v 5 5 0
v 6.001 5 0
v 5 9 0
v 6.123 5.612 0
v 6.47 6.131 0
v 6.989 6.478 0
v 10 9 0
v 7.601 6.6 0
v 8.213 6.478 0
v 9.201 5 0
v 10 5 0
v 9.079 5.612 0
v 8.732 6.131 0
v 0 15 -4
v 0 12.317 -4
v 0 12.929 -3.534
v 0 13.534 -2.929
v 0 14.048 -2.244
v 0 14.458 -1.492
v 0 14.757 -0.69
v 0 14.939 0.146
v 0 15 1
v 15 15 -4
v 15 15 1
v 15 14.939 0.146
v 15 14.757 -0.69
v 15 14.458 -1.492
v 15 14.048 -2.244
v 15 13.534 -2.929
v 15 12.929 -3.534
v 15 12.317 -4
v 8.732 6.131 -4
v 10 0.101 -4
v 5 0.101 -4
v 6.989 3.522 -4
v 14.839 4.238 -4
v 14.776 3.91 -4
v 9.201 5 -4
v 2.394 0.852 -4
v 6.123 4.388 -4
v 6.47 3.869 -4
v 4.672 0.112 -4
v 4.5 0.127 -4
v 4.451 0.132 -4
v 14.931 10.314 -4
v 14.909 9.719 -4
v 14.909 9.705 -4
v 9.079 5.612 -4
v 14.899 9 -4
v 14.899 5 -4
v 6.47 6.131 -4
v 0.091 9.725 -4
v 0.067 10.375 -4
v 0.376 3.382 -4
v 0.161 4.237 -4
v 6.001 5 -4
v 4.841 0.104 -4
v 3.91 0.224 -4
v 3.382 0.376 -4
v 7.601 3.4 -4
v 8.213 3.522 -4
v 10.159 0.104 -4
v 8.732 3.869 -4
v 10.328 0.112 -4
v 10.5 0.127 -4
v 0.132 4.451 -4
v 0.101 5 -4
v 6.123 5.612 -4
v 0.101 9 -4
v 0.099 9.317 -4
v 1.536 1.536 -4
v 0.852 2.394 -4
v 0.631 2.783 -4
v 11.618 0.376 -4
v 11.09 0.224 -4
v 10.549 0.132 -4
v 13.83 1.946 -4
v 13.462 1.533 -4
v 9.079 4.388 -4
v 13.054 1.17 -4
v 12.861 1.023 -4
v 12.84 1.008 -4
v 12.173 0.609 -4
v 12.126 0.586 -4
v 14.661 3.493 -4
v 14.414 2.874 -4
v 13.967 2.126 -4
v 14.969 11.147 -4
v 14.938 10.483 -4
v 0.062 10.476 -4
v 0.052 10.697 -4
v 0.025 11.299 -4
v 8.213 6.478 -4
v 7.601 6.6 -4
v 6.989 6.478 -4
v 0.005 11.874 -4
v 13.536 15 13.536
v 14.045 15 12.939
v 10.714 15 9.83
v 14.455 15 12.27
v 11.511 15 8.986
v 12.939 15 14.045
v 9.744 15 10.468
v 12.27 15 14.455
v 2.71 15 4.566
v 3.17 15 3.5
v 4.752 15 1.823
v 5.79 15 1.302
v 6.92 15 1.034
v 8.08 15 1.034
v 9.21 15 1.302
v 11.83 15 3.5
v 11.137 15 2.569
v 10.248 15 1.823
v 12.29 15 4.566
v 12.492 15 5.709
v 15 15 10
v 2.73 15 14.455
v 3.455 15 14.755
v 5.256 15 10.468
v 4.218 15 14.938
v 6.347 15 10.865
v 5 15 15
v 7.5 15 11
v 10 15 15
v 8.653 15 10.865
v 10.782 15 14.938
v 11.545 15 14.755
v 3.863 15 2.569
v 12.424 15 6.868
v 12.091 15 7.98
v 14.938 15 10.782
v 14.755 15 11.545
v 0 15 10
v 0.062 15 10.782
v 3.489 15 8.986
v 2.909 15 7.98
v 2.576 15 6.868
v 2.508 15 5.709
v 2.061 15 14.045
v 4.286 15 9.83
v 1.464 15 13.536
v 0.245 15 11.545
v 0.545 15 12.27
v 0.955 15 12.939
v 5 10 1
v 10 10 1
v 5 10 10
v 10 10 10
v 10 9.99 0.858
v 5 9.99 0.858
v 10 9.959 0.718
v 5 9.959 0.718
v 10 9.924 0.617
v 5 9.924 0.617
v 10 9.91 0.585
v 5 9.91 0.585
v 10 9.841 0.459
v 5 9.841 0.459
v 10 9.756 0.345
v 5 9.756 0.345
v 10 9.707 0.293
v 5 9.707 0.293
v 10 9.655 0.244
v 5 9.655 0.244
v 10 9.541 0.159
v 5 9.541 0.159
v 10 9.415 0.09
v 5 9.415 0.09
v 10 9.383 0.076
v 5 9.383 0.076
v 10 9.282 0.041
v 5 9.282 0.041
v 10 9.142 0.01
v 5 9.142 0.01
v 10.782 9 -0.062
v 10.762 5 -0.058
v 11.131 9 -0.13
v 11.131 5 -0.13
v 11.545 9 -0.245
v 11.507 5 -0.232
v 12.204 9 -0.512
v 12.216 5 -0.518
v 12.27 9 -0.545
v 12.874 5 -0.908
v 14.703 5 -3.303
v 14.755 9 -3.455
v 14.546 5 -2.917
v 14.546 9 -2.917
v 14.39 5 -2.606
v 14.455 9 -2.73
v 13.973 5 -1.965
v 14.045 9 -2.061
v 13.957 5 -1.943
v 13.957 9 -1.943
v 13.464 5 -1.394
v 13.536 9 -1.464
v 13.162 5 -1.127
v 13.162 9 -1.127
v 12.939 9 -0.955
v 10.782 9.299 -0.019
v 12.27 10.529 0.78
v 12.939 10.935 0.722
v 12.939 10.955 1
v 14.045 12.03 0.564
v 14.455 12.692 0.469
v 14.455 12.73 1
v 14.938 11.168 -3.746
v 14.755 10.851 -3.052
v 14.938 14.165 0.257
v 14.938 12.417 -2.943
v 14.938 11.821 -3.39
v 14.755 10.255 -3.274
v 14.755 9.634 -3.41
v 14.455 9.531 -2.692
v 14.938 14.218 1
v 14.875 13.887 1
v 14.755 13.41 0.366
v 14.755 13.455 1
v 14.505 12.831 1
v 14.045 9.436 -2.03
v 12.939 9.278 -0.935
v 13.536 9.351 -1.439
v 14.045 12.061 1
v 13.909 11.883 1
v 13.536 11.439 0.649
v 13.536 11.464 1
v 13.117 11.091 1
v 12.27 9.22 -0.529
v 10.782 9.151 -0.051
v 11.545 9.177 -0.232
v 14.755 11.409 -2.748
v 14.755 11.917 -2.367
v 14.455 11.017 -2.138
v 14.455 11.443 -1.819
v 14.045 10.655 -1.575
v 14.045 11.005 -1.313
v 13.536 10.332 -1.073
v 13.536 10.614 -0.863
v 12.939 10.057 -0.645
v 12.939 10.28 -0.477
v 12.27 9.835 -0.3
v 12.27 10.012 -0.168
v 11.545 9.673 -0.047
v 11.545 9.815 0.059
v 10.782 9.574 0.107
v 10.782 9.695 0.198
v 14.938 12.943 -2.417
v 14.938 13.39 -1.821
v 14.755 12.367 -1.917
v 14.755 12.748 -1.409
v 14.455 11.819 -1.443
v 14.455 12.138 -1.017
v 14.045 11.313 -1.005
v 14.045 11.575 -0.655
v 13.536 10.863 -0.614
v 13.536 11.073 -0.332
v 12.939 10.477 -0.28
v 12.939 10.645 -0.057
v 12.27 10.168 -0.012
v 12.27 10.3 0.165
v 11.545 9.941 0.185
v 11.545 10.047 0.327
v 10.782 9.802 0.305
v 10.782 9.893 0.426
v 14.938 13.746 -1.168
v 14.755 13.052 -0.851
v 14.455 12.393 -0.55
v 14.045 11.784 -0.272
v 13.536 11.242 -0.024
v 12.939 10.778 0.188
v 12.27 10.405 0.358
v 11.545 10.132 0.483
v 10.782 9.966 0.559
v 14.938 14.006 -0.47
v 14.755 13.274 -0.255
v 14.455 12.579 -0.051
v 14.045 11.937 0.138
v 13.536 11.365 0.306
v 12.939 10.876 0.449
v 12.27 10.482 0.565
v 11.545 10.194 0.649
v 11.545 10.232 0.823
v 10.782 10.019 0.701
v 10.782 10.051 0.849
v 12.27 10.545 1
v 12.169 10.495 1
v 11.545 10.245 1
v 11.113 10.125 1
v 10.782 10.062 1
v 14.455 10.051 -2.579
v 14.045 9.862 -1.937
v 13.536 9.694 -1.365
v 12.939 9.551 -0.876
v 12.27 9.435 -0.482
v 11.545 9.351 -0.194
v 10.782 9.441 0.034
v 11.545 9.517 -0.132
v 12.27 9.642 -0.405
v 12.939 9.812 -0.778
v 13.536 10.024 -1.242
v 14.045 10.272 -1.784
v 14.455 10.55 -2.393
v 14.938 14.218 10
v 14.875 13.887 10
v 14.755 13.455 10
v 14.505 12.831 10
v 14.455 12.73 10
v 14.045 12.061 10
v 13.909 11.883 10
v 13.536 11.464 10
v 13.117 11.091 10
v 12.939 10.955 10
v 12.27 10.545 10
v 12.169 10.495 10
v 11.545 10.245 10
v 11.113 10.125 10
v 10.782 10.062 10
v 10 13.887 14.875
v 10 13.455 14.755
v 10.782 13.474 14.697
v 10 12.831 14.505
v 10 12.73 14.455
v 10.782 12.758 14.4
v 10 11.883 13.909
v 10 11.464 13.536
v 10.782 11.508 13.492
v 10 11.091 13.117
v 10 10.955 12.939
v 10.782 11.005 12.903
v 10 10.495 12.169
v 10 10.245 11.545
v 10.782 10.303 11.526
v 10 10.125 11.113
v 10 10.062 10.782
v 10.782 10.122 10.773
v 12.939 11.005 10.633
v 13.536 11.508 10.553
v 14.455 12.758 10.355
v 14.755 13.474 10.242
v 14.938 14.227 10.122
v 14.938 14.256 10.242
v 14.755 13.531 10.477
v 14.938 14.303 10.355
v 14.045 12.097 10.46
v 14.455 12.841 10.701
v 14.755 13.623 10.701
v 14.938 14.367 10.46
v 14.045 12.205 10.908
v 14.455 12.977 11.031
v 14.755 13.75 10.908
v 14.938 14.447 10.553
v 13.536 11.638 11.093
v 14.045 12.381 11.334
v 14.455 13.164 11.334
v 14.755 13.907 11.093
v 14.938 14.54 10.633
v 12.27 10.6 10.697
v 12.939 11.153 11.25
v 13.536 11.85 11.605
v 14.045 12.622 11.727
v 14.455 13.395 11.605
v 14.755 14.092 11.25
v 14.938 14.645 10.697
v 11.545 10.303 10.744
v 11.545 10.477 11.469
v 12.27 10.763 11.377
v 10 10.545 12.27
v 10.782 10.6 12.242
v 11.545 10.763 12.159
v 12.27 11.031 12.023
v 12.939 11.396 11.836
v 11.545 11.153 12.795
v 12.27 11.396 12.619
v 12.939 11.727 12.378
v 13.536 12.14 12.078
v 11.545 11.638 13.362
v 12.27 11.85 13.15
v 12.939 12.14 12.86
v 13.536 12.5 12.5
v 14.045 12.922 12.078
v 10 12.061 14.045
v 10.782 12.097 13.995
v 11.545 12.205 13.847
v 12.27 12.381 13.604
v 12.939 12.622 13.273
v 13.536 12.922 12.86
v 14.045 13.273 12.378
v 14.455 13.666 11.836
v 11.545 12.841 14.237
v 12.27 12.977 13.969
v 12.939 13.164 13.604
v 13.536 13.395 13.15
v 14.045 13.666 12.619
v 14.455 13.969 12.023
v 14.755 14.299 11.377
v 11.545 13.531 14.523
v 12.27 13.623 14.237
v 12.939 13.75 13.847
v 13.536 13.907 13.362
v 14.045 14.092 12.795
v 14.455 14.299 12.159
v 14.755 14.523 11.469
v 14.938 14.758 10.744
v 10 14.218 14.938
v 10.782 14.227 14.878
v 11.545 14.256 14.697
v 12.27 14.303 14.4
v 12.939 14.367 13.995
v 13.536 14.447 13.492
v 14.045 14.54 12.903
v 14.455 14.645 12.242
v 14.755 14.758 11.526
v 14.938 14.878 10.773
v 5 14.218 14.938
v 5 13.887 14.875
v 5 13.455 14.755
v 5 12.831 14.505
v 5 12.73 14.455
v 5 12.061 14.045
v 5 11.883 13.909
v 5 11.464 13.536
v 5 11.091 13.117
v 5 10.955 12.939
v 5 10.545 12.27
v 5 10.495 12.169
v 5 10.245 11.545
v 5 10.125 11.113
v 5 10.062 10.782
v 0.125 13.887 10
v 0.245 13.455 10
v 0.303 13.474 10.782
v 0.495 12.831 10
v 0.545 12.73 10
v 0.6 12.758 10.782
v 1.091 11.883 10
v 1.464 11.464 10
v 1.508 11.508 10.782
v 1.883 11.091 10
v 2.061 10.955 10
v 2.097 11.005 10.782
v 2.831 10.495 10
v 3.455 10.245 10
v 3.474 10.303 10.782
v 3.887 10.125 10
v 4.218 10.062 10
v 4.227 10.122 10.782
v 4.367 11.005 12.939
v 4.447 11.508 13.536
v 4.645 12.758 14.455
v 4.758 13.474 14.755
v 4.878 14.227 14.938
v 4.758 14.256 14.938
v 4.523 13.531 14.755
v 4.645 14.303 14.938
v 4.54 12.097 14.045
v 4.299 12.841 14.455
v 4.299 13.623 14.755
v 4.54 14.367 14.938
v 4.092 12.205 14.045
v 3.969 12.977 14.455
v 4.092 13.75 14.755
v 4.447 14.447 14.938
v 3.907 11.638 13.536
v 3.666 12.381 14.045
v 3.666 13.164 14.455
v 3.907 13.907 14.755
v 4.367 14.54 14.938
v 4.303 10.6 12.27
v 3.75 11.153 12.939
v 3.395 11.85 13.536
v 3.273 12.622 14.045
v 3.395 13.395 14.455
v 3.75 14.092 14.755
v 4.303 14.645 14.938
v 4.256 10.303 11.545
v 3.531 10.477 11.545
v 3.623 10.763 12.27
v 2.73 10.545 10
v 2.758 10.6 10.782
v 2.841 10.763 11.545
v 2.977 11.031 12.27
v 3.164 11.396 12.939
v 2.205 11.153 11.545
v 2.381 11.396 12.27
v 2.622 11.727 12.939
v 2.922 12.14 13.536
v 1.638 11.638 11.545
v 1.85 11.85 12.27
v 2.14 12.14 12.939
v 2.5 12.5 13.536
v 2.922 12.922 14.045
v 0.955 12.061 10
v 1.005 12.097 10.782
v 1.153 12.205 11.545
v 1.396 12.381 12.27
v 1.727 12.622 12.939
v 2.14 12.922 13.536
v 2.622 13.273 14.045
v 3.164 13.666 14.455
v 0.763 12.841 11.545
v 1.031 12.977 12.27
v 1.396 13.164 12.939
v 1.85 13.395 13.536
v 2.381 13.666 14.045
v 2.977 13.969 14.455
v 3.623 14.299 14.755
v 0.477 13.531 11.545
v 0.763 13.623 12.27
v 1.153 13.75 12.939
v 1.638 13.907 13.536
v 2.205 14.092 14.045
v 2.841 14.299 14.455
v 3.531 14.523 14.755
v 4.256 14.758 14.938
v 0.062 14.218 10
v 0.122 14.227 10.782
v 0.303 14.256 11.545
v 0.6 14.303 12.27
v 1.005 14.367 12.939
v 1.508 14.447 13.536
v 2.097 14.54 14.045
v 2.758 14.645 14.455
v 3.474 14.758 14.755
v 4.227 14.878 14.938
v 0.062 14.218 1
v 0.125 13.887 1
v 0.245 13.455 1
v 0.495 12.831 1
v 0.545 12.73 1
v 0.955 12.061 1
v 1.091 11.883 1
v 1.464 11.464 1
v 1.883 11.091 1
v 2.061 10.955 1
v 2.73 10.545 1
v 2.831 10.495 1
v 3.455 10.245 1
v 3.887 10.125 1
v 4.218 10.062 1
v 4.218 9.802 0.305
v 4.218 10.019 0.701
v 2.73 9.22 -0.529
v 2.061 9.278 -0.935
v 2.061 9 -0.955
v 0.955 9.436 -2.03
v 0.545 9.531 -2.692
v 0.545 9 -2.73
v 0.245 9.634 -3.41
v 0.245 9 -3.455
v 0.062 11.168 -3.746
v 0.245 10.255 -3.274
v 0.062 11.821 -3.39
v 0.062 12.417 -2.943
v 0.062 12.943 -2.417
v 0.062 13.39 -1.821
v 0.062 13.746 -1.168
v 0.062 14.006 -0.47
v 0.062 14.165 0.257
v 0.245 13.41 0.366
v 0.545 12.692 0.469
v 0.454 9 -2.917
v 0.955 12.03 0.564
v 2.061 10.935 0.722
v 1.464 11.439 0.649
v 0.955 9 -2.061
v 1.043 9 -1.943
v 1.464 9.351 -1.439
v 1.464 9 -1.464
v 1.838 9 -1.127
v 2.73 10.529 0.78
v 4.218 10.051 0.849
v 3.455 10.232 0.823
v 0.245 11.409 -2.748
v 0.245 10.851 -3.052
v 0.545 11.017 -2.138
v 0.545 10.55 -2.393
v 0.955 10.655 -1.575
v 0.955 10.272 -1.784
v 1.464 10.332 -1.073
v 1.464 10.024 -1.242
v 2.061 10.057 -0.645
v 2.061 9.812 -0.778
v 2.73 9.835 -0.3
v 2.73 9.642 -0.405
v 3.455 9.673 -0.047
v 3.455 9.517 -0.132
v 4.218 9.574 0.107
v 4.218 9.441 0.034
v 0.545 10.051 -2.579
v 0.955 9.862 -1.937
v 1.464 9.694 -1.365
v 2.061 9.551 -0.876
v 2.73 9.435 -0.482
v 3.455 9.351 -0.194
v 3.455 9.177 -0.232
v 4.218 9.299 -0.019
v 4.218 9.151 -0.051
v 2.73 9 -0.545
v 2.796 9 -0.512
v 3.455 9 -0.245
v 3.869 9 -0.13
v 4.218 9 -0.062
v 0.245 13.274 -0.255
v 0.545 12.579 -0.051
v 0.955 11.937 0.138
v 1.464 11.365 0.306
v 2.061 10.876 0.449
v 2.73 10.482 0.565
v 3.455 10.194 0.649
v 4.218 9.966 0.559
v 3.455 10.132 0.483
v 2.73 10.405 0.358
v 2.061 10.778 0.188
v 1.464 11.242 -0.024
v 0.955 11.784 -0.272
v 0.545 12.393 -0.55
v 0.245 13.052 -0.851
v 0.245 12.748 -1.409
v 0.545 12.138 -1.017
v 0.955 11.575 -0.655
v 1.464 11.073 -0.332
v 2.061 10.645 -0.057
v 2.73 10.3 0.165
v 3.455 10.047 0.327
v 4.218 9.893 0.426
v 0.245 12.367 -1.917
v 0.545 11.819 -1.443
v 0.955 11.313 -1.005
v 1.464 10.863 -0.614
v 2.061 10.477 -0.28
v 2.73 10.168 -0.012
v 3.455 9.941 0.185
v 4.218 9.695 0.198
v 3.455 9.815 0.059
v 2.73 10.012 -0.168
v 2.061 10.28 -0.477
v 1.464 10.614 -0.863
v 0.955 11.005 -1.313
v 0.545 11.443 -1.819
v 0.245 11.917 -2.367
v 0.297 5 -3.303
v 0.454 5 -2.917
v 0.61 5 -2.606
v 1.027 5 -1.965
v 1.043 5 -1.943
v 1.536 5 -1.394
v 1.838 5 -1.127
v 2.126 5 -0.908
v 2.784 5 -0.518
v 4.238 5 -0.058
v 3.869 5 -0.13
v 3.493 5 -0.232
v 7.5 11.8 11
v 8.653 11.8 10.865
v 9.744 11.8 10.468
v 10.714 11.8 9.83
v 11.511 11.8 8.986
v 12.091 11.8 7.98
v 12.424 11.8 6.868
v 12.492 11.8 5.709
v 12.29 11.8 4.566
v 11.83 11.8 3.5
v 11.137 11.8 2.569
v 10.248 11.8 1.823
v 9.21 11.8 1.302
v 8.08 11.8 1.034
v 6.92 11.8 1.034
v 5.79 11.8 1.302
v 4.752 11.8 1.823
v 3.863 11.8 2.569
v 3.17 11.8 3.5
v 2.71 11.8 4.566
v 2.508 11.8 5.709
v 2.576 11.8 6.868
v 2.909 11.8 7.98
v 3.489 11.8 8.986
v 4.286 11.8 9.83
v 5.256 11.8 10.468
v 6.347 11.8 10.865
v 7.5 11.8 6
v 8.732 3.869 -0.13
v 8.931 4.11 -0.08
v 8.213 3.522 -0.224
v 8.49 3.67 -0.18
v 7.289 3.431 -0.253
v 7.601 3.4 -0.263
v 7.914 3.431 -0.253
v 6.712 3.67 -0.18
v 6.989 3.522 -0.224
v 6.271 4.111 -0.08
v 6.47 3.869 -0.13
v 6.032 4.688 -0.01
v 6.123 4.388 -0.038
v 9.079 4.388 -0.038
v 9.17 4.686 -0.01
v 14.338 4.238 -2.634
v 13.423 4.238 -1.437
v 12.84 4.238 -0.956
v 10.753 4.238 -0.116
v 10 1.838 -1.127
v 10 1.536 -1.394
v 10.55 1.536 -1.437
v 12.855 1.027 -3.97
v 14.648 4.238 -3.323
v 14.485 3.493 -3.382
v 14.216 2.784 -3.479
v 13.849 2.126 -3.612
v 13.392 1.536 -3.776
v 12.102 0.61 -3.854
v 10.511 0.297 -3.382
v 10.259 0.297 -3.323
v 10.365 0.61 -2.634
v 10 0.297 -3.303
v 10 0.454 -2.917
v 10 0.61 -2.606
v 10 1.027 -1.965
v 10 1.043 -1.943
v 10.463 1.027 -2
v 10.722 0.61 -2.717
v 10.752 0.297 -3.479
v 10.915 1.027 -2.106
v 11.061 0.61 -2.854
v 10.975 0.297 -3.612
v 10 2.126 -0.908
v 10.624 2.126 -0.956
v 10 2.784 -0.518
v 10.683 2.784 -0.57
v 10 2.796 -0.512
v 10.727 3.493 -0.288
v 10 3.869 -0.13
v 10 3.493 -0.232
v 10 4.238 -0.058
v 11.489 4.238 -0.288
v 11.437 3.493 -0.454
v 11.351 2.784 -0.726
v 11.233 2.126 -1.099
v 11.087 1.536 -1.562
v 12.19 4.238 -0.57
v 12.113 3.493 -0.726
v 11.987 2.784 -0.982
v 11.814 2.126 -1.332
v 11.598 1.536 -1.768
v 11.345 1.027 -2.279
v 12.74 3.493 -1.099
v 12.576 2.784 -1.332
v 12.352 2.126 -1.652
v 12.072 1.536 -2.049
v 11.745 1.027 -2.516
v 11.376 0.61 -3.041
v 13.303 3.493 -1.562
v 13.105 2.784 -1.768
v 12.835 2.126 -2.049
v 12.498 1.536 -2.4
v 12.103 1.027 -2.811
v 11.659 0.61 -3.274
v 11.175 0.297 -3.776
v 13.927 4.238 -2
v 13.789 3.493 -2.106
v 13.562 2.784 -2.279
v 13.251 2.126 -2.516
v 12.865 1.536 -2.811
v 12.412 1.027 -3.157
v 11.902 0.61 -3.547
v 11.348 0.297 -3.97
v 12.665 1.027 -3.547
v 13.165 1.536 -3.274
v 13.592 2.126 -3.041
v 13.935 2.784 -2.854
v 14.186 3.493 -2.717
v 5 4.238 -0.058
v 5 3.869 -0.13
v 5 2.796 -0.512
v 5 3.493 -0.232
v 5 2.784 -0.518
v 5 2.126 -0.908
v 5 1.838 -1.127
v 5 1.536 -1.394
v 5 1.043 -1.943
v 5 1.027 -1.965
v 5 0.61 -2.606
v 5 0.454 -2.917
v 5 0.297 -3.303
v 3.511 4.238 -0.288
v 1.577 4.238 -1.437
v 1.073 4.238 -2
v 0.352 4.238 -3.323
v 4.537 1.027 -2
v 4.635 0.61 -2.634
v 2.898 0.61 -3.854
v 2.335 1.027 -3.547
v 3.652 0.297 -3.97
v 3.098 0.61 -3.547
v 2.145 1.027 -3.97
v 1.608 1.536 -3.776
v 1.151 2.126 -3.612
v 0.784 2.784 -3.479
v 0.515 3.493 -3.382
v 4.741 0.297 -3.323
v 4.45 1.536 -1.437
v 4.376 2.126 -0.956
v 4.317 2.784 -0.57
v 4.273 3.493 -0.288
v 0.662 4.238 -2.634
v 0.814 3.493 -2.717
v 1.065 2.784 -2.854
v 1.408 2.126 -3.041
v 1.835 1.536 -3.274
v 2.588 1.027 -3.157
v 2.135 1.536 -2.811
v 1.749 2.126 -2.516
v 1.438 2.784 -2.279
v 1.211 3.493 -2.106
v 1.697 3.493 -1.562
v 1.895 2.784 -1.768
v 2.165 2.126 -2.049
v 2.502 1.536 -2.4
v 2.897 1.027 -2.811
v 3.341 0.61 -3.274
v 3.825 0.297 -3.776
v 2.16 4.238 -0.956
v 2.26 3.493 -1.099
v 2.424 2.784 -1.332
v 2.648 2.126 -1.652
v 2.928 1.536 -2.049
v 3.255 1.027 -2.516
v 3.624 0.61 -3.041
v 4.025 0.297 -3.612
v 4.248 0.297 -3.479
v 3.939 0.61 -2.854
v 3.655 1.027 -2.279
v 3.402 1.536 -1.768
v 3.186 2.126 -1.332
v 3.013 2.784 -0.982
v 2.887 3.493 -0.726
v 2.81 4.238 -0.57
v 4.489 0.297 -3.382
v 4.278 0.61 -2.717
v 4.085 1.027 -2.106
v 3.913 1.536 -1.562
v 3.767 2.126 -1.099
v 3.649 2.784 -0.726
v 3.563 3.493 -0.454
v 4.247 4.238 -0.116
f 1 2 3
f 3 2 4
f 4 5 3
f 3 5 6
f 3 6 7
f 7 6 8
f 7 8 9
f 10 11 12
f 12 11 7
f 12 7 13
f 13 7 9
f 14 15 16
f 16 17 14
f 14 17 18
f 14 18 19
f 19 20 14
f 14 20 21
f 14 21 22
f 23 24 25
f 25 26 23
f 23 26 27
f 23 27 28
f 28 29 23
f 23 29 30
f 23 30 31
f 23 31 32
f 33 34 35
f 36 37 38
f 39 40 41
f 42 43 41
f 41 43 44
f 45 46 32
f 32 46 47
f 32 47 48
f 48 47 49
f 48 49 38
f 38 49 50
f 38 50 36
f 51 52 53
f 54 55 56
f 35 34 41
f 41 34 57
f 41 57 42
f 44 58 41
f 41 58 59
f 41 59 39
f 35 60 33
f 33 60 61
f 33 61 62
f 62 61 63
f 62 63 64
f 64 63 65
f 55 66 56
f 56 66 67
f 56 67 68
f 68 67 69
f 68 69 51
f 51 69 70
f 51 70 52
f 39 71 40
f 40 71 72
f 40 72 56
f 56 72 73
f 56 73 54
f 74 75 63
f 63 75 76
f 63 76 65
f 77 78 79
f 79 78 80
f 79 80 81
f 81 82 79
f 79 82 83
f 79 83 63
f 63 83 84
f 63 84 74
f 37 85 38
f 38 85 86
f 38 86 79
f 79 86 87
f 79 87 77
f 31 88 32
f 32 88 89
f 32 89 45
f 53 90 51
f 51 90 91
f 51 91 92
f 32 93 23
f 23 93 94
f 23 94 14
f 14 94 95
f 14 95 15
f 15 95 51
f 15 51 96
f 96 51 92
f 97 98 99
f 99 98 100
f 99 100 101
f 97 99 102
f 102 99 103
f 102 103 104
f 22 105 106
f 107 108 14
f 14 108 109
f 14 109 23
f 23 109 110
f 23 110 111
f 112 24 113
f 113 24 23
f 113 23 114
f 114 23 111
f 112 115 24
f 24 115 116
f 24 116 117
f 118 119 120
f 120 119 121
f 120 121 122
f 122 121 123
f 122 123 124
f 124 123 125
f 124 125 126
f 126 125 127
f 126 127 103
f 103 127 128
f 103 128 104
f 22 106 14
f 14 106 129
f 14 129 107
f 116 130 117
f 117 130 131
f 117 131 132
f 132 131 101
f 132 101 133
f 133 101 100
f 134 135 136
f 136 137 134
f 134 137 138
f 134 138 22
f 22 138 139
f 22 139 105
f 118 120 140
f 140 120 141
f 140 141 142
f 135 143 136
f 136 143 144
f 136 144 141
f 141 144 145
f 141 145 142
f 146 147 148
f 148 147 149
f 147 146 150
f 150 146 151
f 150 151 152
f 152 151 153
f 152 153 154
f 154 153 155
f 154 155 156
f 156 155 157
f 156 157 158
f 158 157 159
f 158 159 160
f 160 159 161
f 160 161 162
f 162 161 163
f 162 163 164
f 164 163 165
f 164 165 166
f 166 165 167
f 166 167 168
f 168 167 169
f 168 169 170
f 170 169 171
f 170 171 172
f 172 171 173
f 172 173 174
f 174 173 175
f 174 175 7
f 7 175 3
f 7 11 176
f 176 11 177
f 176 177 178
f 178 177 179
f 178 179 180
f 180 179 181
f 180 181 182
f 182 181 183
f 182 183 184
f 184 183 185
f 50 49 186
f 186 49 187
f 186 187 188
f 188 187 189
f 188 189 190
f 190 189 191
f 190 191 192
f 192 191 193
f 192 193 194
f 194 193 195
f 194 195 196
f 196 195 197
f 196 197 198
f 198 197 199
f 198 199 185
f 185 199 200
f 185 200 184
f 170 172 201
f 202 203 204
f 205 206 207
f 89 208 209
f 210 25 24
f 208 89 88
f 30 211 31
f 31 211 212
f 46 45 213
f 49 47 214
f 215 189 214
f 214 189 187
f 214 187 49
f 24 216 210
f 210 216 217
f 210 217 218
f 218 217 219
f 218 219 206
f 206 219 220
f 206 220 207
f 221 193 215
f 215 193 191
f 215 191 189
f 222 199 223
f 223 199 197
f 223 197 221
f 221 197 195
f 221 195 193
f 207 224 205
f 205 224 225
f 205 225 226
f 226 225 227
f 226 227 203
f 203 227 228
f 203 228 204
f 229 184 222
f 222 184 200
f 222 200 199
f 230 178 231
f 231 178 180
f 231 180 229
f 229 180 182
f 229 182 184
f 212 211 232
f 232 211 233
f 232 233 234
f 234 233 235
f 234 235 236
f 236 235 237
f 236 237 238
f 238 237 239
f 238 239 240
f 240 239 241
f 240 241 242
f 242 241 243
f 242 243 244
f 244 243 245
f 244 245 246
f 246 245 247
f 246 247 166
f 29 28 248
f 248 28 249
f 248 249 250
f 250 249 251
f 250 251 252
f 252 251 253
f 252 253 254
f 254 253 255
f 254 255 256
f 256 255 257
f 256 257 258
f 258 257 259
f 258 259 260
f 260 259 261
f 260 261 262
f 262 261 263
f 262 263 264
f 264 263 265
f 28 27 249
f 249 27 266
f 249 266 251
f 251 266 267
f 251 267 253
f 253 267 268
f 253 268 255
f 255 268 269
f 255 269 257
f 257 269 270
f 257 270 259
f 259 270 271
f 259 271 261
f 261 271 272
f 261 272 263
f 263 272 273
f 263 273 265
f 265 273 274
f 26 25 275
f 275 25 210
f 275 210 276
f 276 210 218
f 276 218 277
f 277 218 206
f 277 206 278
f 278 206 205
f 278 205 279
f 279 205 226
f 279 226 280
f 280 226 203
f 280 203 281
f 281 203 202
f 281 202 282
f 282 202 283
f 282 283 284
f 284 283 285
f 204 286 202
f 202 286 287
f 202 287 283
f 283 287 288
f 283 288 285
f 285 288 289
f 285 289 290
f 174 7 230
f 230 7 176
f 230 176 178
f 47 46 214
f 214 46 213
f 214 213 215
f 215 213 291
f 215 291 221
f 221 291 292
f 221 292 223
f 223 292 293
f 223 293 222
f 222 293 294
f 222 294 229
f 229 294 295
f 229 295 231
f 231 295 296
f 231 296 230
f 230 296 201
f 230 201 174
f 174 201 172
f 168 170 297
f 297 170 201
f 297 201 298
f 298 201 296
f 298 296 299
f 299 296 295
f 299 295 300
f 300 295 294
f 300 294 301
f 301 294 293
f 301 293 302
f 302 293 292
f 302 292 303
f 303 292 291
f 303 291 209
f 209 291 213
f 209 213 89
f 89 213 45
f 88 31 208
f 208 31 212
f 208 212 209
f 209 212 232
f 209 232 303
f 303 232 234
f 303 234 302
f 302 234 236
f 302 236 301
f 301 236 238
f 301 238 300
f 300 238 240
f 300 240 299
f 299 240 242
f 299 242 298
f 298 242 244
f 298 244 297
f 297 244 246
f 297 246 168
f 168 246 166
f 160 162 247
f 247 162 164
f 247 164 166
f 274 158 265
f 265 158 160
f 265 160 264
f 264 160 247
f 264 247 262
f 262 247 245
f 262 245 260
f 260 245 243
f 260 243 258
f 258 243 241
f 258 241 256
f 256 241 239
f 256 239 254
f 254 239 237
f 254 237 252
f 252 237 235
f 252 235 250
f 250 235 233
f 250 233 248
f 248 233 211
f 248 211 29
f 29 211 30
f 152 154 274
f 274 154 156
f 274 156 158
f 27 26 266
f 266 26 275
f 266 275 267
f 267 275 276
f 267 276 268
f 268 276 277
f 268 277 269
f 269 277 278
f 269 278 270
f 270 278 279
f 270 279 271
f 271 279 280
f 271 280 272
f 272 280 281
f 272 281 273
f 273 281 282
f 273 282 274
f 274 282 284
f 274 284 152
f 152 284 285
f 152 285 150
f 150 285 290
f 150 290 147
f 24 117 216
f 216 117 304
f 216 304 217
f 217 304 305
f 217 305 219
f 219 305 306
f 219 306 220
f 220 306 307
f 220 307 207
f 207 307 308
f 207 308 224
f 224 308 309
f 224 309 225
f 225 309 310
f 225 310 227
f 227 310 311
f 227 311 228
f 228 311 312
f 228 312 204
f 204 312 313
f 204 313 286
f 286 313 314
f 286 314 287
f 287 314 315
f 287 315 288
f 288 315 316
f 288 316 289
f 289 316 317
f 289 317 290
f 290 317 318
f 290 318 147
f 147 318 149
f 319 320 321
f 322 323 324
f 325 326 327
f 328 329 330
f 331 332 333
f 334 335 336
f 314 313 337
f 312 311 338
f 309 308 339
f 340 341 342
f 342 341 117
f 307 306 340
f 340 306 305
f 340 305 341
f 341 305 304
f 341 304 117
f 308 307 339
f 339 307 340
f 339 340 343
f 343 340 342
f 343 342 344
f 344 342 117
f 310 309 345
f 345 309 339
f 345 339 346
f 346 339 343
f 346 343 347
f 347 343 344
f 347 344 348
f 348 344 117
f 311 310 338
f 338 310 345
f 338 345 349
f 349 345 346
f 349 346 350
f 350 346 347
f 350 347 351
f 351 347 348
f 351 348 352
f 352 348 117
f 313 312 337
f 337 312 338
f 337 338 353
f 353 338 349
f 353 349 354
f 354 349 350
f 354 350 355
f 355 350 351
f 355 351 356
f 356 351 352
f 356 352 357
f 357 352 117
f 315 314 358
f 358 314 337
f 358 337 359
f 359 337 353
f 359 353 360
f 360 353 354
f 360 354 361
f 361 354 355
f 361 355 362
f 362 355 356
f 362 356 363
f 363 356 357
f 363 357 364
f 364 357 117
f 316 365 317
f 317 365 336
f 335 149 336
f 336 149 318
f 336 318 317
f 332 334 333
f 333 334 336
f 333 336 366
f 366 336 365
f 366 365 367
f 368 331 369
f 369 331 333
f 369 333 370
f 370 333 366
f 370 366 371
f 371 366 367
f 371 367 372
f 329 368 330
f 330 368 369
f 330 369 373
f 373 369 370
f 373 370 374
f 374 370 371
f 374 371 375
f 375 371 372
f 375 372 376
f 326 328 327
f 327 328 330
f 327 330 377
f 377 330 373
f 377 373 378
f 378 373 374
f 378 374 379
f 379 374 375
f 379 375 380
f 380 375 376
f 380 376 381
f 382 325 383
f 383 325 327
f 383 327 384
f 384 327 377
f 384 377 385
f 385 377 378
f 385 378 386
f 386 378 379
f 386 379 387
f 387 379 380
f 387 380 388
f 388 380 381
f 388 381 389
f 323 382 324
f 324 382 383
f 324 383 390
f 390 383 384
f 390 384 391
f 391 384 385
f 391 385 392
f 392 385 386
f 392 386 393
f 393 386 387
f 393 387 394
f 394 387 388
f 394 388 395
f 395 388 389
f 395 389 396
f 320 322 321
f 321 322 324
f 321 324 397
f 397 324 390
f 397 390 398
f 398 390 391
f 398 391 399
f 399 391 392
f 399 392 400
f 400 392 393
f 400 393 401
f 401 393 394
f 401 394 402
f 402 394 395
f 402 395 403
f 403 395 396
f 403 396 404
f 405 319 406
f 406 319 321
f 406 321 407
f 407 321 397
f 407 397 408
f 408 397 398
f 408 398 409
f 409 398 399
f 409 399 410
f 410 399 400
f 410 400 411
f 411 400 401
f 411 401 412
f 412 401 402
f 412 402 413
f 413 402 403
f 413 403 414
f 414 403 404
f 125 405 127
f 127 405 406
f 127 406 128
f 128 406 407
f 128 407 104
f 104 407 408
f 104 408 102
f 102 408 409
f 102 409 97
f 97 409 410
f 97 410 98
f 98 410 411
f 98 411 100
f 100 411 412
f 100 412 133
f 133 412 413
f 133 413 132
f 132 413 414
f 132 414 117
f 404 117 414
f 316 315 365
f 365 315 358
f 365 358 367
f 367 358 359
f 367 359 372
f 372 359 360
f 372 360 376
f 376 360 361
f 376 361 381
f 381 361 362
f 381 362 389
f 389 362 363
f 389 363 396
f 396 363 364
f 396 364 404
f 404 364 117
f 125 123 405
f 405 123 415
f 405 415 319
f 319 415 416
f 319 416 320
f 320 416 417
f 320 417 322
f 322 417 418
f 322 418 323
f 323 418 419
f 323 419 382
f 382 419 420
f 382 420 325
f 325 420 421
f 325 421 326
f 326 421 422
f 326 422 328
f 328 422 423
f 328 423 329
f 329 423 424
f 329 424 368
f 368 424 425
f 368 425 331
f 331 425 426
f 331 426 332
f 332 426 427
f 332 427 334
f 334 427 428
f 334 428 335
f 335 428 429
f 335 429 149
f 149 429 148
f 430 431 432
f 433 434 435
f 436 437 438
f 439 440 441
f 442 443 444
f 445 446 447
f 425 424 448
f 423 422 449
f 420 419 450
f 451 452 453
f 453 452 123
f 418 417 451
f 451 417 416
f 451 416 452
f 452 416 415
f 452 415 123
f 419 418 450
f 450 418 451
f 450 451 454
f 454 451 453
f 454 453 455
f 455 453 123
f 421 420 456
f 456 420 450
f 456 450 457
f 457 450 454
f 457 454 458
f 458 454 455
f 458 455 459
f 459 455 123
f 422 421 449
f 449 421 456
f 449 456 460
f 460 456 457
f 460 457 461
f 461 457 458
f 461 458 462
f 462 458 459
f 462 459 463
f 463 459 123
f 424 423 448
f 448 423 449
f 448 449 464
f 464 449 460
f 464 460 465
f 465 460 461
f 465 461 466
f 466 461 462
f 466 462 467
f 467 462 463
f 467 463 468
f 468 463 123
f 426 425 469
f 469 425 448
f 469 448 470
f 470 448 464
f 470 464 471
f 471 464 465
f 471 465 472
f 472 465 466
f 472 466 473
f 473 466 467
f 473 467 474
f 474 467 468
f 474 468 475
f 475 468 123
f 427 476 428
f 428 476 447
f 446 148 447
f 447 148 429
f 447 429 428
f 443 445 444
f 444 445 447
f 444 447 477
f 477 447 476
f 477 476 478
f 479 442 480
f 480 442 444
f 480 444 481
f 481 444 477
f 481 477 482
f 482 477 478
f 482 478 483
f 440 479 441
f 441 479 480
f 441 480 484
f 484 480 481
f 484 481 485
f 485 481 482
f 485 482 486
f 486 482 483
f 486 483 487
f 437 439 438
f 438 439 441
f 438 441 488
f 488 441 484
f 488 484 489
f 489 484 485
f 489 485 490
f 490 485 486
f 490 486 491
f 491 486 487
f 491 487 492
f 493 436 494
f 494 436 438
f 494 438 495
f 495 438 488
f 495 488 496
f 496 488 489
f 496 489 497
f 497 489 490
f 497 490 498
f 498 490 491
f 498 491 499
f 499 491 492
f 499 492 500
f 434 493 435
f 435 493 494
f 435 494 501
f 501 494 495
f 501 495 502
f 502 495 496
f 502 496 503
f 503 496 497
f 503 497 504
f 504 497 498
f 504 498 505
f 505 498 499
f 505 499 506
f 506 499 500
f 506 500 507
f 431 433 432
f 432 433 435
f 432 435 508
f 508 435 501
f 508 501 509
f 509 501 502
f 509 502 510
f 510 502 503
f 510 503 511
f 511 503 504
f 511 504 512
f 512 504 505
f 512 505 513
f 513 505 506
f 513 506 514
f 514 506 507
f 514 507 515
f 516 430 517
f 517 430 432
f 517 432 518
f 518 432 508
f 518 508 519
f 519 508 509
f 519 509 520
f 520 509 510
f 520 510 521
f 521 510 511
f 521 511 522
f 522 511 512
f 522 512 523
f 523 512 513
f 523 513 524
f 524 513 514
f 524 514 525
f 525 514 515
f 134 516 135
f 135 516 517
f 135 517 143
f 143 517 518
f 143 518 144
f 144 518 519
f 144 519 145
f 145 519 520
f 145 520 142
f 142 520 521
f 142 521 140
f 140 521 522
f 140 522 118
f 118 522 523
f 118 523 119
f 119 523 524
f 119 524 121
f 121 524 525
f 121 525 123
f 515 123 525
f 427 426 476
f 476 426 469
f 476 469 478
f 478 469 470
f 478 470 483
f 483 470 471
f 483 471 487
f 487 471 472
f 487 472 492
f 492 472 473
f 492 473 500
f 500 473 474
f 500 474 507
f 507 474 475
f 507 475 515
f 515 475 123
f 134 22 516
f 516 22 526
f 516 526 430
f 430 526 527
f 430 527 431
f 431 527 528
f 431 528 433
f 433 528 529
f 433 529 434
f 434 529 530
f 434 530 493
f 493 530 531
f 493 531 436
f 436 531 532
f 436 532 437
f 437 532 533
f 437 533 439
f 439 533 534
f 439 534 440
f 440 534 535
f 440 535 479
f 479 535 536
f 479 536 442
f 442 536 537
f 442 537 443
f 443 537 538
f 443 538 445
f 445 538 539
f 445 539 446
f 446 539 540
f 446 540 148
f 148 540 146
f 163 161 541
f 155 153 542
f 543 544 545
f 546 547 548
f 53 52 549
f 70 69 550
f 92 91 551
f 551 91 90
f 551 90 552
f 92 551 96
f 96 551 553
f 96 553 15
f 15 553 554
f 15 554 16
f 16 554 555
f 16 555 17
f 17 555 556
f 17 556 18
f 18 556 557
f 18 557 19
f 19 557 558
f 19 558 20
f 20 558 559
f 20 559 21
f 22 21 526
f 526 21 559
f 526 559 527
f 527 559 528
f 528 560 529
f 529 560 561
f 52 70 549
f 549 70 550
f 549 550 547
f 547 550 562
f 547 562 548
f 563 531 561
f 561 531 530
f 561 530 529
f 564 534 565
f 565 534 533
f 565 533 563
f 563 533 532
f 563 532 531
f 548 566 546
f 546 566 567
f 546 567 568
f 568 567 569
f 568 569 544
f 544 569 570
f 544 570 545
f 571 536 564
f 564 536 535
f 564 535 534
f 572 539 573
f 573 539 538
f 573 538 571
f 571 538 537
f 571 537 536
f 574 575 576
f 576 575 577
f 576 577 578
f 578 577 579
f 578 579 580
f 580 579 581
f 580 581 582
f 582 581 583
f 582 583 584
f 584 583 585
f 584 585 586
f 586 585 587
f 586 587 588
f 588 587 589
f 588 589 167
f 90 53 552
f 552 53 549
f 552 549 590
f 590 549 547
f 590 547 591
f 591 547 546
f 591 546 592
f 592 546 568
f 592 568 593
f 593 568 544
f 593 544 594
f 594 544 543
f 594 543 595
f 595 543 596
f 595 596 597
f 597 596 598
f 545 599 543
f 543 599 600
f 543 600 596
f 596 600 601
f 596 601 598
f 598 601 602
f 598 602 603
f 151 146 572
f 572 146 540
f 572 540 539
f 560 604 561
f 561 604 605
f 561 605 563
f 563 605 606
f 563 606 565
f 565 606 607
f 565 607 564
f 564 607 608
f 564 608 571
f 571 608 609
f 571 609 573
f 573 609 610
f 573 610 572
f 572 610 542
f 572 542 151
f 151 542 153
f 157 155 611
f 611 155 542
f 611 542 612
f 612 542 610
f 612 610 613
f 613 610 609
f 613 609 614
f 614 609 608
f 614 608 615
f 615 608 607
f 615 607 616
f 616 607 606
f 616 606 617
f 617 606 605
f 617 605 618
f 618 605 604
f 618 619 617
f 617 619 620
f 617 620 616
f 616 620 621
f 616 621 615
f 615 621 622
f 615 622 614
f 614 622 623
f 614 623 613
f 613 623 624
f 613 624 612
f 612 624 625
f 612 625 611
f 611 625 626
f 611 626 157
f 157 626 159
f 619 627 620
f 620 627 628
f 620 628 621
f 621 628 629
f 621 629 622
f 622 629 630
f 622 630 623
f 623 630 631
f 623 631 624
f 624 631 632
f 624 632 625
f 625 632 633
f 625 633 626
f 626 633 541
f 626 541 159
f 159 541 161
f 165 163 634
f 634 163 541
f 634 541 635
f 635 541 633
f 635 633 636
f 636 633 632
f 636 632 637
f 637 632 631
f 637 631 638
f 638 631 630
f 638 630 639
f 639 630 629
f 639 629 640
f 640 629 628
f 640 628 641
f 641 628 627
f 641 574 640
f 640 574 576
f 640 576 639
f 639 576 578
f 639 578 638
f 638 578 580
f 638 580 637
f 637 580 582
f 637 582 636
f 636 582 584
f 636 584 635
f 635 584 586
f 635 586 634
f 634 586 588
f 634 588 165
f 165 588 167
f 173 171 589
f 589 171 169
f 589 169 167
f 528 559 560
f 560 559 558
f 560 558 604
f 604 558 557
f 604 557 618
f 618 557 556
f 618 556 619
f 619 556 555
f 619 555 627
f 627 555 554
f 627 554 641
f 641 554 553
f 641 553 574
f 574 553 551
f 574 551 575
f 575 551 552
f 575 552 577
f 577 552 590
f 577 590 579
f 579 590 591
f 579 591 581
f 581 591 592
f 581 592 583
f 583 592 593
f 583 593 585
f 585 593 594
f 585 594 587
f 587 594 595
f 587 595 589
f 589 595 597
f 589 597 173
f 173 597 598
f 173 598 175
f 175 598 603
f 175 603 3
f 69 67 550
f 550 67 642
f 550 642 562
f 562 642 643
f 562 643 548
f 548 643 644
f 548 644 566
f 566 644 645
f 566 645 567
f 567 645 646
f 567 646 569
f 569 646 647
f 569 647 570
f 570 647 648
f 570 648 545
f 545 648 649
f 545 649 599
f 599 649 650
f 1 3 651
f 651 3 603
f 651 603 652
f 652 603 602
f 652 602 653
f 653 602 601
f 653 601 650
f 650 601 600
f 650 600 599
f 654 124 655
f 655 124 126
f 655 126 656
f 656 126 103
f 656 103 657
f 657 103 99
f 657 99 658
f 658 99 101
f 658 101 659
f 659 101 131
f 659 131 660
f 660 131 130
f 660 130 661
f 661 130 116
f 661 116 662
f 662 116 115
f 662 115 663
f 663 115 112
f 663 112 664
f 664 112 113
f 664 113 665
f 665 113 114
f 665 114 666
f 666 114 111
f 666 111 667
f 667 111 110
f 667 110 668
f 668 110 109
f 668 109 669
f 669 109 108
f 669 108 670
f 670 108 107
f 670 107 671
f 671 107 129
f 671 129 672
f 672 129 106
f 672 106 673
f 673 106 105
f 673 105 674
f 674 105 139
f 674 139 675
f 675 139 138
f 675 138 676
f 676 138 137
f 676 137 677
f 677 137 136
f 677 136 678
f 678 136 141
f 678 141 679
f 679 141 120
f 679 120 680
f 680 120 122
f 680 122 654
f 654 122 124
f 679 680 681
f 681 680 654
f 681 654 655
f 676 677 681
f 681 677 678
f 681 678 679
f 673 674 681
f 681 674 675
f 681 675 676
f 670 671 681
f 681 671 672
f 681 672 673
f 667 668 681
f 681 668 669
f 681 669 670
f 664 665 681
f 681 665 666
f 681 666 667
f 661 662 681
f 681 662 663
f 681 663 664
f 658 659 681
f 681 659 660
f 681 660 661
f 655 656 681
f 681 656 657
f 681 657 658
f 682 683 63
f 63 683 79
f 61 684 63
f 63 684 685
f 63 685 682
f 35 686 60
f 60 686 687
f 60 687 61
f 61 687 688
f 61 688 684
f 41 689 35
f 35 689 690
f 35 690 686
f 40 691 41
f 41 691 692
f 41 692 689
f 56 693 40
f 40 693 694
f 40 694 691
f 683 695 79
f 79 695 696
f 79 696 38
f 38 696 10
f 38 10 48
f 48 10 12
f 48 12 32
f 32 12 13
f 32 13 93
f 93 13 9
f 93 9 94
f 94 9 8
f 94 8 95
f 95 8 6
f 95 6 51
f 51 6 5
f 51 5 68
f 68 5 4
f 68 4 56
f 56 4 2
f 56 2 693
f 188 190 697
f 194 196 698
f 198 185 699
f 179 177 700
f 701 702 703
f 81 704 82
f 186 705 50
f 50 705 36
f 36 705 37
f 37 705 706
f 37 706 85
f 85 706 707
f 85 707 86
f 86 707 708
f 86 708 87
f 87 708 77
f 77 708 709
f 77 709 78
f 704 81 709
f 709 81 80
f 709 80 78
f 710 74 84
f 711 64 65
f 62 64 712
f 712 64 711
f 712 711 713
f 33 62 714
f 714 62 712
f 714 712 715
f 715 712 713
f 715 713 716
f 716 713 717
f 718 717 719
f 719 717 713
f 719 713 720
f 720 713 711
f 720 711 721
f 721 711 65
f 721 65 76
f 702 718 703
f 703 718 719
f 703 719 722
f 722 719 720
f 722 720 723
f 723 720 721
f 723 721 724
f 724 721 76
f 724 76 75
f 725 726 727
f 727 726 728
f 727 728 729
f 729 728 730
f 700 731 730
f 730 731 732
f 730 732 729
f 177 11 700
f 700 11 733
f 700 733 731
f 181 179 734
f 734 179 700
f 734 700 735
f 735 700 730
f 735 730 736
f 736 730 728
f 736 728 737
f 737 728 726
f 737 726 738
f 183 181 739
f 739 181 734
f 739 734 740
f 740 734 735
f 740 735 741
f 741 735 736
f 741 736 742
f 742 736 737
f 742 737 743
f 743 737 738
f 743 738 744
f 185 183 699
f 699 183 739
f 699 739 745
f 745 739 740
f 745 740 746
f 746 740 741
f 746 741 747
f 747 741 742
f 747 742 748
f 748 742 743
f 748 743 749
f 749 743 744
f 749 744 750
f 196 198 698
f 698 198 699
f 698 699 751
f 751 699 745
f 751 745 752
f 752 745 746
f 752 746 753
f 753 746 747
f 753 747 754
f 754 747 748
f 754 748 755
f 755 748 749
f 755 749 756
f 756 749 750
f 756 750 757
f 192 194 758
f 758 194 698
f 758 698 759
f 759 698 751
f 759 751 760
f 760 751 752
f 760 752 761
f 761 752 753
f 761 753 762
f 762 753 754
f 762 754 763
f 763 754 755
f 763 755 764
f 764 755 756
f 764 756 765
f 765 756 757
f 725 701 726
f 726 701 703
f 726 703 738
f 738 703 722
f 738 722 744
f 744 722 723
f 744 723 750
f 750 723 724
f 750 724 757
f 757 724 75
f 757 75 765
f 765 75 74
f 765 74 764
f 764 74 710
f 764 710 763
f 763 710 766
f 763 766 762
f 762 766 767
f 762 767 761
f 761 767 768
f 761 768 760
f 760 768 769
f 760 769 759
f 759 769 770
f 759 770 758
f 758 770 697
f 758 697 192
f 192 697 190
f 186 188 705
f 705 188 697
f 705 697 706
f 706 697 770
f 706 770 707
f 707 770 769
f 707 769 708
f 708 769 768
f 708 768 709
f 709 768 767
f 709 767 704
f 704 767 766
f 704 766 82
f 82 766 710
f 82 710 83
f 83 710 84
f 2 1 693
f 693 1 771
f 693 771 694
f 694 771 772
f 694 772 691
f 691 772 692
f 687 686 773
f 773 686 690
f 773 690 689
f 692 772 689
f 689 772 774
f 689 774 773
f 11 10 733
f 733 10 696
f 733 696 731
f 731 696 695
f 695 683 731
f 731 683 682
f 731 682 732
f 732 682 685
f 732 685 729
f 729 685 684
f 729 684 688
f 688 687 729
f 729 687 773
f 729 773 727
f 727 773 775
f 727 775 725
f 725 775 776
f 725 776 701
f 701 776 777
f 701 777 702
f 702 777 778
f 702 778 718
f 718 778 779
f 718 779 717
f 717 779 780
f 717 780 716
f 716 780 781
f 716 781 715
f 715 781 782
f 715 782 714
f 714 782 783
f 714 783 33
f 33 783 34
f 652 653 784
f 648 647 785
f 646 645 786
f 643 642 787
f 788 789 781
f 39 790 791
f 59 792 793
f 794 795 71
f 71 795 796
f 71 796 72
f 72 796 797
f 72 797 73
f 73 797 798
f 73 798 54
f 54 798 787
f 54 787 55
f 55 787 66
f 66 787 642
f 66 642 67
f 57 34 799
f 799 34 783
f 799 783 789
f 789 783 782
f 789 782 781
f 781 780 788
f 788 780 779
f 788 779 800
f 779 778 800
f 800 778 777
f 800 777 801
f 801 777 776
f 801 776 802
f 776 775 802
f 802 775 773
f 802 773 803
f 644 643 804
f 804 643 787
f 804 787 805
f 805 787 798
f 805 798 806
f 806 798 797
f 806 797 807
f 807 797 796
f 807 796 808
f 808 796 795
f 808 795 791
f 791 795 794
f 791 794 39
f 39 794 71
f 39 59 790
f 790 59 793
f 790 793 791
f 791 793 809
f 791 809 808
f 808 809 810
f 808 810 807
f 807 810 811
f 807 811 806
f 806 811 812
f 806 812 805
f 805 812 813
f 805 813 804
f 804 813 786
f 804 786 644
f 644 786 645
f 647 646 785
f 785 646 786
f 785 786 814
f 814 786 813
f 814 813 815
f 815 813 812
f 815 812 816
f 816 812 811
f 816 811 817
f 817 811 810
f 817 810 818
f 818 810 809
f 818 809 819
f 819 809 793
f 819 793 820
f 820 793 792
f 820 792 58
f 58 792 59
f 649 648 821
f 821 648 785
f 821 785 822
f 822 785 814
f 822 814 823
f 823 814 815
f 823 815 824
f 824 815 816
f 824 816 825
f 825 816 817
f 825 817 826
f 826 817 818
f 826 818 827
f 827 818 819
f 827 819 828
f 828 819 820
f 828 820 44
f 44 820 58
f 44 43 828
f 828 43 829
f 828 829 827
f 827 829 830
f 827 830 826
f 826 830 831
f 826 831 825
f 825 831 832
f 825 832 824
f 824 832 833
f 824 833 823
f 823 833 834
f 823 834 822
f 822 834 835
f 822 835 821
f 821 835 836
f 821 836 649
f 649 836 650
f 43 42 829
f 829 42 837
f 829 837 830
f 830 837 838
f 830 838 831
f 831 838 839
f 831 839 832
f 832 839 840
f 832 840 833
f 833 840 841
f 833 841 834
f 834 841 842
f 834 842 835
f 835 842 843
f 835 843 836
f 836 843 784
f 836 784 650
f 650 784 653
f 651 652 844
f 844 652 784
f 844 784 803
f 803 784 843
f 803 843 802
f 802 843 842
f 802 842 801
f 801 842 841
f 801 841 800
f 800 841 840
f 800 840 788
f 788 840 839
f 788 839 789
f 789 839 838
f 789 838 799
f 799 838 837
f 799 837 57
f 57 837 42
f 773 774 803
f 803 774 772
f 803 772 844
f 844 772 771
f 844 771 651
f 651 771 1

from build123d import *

# Parameters (mm, degrees)
SKETCH1_W           = 15
SKETCH1_H           = 4
BOSS_EXTRUDE1_DEPTH = 15
SKETCH2_W           = 15
SKETCH2_H           = 5
BOSS_EXTRUDE2_DEPTH = 15
FILLET1_R           = 1
FILLET3_R           = 5
SKETCH3_R           = 5
CUT_EXTRUDE1_DEPTH  = 3.2
SKETCH4_R           = 1.6
CUT_EXTRUDE2_DEPTH  = 26.980762229
FILLET4_R           = 5


with BuildPart() as part:
    # Sketch1 → Boss-Extrude1 (new body)
    with BuildSketch(Plane(origin=(0, 0, 0), x_dir=(1, 0, 0), z_dir=(0, 1, 0))):
        with Locations((7.5, 2)):
            Rectangle(SKETCH1_W, SKETCH1_H)
    extrude(amount=BOSS_EXTRUDE1_DEPTH)

    # Sketch2 → Boss-Extrude2 (add)
    with BuildSketch(Plane.XY):
        with Locations((7.5, 12.5)):
            Rectangle(SKETCH2_W, SKETCH2_H)
    extrude(amount=BOSS_EXTRUDE2_DEPTH)

    # Fillet1
    fillet1_edges = [part.edges().sort_by_distance(p)[0] for p in [
        (7.5, 10, 0),
    ]]
    fillet(fillet1_edges, radius=FILLET1_R)

    # Fillet3
    # the kernel refuses this fillet: 5 mm, written as the material it takes off along each edge
    with BuildSketch(Plane(origin=(5, 15, 10), x_dir=(0, -1, 0), z_dir=(-1, 0, 0))) as fillet3_piece_1_section:
        Polygon((0, 0), (FILLET3_R * 1.02, 0), (FILLET3_R * 1.02, FILLET3_R * 1.02), (0, FILLET3_R * 1.02), align=None)
    fillet3_piece_1 = extrude(amount=FILLET3_R * 1.02, mode=Mode.PRIVATE)
    fillet3_piece_1 = fillet3_piece_1 - Plane(origin=(5, 15, 10), x_dir=(0, 0.7071067811865475, -0.7071067811865475), z_dir=(-1, 0, 0)) * Sphere(FILLET3_R, mode=Mode.PRIVATE)
    add(fillet3_piece_1, mode=Mode.SUBTRACT)
    with BuildSketch(Plane(origin=(10, 15, 10), x_dir=(0, -1, 0), z_dir=(1, 0, 0))) as fillet3_piece_2_section:
        Polygon((0, 0), (FILLET3_R * 1.02, 0), (FILLET3_R * 1.02, -FILLET3_R * 1.02), (0, -FILLET3_R * 1.02), align=None)
    fillet3_piece_2 = extrude(amount=FILLET3_R * 1.02, mode=Mode.PRIVATE)
    fillet3_piece_2 = fillet3_piece_2 - Plane(origin=(10, 15, 10), x_dir=(0, 0.7071067811865475, -0.7071067811865475), z_dir=(1, 0, 0)) * Sphere(FILLET3_R, mode=Mode.PRIVATE)
    add(fillet3_piece_2, mode=Mode.SUBTRACT)
    with BuildSketch(Plane(origin=(0, 10, 1), x_dir=(0, 1, 0), z_dir=(0, 0, 1))) as fillet3_piece_3:
        with BuildLine():
            CenterArc((FILLET3_R, -FILLET3_R), FILLET3_R, 90, 90)
            Line((0, -FILLET3_R), (0, 0))
            Line((0, 0), (FILLET3_R, 0))
        make_face()
    extrude(amount=9, mode=Mode.SUBTRACT)
    with BuildSketch(Plane(origin=(15, 10, 1), x_dir=(0, 1, 0), z_dir=(0, 0, 1))) as fillet3_piece_4:
        with BuildLine():
            CenterArc((FILLET3_R, FILLET3_R), FILLET3_R, 180, 90)
            Line((0, FILLET3_R), (0, 0))
            Line((0, 0), (FILLET3_R, 0))
        make_face()
    extrude(amount=9, mode=Mode.SUBTRACT)
    with BuildSketch(Plane(origin=(10, 10, 15), x_dir=(0, 0, -1), z_dir=(-1, 0, 0))) as fillet3_piece_5:
        with BuildLine():
            CenterArc((FILLET3_R, -FILLET3_R), FILLET3_R, 90, 90)
            Line((0, -FILLET3_R), (0, 0))
            Line((0, 0), (FILLET3_R, 0))
        make_face()
    extrude(amount=5, mode=Mode.SUBTRACT)
    with BuildSketch(Plane(origin=(0, -12.5, 0), x_dir=(1, 0, 0), z_dir=(0, 1, 0))) as fillet3_piece_6:
        with BuildLine():
            CenterArc((FILLET3_R, FILLET3_R), FILLET3_R, 180, 90)
            Line((0, FILLET3_R), (0, 0))
            Line((0, 0), (FILLET3_R, 0))
        make_face()
    extrude(amount=21.5, mode=Mode.SUBTRACT)
    with BuildSketch(Plane(origin=(15, -12.5, 0), x_dir=(-1, 0, 0), z_dir=(0, 1, 0))) as fillet3_piece_7:
        with BuildLine():
            CenterArc((FILLET3_R, -FILLET3_R), FILLET3_R, 90, 90)
            Line((0, -FILLET3_R), (0, 0))
            Line((0, 0), (FILLET3_R, 0))
        make_face()
    extrude(amount=21.5, mode=Mode.SUBTRACT)
    with BuildSketch(Plane(origin=(15, 9, 1), x_dir=(0, 0, -1), z_dir=(0, -1, 0))) as fillet3_piece_8:
        with BuildLine():
            CenterArc((1 + FILLET3_R, -FILLET3_R), FILLET3_R, 90, 90)
            Line((1, -FILLET3_R), (1, 0))
            Line((1, 0), (1 + FILLET3_R, 0))
        make_face()
    revolve(axis=Axis((15, 9, 1), (1, 0, 0)), revolution_arc=90, mode=Mode.SUBTRACT)
    with BuildSketch(Plane(origin=(0, 9, 1), x_dir=(0, 0, -1), z_dir=(0, -1, 0))) as fillet3_piece_9:
        with BuildLine():
            CenterArc((1 + FILLET3_R, FILLET3_R), FILLET3_R, 180, 90)
            Line((1 + FILLET3_R, 0), (1, 0))
            Line((1, 0), (1, FILLET3_R))
        make_face()
    revolve(axis=Axis((0, 9, 1), (1, 0, 0)), revolution_arc=90, mode=Mode.SUBTRACT)

    # Sketch3 → Cut-Extrude1 (cut)
    with BuildSketch(Plane(origin=(0, 15, 0), x_dir=(1, 0, 0), z_dir=(0, 1, 0))):
        with Locations(Location((7.5, -6, 0), (0, 0, 270))):
            Circle(SKETCH3_R)
    extrude(amount=-CUT_EXTRUDE1_DEPTH, mode=Mode.SUBTRACT)

    # Sketch4 → Cut-Extrude2 (cut, through all)
    with BuildSketch(Plane.XY):
        with Locations((7.601020514, 5)):
            Circle(SKETCH4_R)
    extrude(amount=-CUT_EXTRUDE2_DEPTH, mode=Mode.SUBTRACT)

    # Fillet4
    # the kernel refuses this fillet: 5 mm, written as the material it takes off along each edge
    with BuildSketch(Plane(origin=(5, 0, -5), x_dir=(0, 0, 1), z_dir=(1, 0, 0))) as fillet4_piece_1:
        with BuildLine():
            CenterArc((5 - FILLET4_R, -FILLET4_R), FILLET4_R, 0, 90)
            Line((5 - FILLET4_R, 0), (5, 0))
            Line((5, 0), (5, -FILLET4_R))
        make_face()
    revolve(axis=Axis((5, 0, -5), (0, -1, 0)), revolution_arc=221.746220733, mode=Mode.SUBTRACT)
    with BuildSketch(Plane(origin=(10, 0, -5), x_dir=(-0.6658324541231062, 0, -0.7461012954260312), z_dir=(-0.7461012954260312, 0, 0.6658324541231062))) as fillet4_piece_2:
        with BuildLine():
            CenterArc((5 - FILLET4_R, -FILLET4_R), FILLET4_R, 0, 90)
            Line((5 - FILLET4_R, 0), (5, 0))
            Line((5, 0), (5, -FILLET4_R))
        make_face()
    revolve(axis=Axis((10, 0, -5), (0, -1, 0)), revolution_arc=221.746220733, mode=Mode.SUBTRACT)
    with BuildSketch(Plane(origin=(5, 0, 0), x_dir=(0, 1, 0), z_dir=(1, 0, 0))) as fillet4_piece_3:
        with BuildLine():
            CenterArc((FILLET4_R, -FILLET4_R), FILLET4_R, 90, 90)
            Line((0, -FILLET4_R), (0, 0))
            Line((0, 0), (FILLET4_R, 0))
        make_face()
    extrude(amount=5, mode=Mode.SUBTRACT)


solid = part.part
